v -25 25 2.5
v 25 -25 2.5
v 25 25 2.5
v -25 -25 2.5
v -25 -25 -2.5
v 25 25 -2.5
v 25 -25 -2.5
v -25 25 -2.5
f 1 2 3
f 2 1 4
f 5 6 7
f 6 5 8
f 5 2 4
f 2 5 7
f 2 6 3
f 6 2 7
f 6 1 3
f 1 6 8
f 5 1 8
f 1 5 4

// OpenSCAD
// Spacer Plate
module spacer_plate() {
    // Dimensions based on the description and visual estimation
    square_size = 50; // Length of the square side
    thickness = 5;    // Thickness of the plate

    // Create a solid square plate (removing the circular cutout)
    cube([square_size, square_size, thickness], center = true);
}

// Render the spacer plate
spacer_plate();
